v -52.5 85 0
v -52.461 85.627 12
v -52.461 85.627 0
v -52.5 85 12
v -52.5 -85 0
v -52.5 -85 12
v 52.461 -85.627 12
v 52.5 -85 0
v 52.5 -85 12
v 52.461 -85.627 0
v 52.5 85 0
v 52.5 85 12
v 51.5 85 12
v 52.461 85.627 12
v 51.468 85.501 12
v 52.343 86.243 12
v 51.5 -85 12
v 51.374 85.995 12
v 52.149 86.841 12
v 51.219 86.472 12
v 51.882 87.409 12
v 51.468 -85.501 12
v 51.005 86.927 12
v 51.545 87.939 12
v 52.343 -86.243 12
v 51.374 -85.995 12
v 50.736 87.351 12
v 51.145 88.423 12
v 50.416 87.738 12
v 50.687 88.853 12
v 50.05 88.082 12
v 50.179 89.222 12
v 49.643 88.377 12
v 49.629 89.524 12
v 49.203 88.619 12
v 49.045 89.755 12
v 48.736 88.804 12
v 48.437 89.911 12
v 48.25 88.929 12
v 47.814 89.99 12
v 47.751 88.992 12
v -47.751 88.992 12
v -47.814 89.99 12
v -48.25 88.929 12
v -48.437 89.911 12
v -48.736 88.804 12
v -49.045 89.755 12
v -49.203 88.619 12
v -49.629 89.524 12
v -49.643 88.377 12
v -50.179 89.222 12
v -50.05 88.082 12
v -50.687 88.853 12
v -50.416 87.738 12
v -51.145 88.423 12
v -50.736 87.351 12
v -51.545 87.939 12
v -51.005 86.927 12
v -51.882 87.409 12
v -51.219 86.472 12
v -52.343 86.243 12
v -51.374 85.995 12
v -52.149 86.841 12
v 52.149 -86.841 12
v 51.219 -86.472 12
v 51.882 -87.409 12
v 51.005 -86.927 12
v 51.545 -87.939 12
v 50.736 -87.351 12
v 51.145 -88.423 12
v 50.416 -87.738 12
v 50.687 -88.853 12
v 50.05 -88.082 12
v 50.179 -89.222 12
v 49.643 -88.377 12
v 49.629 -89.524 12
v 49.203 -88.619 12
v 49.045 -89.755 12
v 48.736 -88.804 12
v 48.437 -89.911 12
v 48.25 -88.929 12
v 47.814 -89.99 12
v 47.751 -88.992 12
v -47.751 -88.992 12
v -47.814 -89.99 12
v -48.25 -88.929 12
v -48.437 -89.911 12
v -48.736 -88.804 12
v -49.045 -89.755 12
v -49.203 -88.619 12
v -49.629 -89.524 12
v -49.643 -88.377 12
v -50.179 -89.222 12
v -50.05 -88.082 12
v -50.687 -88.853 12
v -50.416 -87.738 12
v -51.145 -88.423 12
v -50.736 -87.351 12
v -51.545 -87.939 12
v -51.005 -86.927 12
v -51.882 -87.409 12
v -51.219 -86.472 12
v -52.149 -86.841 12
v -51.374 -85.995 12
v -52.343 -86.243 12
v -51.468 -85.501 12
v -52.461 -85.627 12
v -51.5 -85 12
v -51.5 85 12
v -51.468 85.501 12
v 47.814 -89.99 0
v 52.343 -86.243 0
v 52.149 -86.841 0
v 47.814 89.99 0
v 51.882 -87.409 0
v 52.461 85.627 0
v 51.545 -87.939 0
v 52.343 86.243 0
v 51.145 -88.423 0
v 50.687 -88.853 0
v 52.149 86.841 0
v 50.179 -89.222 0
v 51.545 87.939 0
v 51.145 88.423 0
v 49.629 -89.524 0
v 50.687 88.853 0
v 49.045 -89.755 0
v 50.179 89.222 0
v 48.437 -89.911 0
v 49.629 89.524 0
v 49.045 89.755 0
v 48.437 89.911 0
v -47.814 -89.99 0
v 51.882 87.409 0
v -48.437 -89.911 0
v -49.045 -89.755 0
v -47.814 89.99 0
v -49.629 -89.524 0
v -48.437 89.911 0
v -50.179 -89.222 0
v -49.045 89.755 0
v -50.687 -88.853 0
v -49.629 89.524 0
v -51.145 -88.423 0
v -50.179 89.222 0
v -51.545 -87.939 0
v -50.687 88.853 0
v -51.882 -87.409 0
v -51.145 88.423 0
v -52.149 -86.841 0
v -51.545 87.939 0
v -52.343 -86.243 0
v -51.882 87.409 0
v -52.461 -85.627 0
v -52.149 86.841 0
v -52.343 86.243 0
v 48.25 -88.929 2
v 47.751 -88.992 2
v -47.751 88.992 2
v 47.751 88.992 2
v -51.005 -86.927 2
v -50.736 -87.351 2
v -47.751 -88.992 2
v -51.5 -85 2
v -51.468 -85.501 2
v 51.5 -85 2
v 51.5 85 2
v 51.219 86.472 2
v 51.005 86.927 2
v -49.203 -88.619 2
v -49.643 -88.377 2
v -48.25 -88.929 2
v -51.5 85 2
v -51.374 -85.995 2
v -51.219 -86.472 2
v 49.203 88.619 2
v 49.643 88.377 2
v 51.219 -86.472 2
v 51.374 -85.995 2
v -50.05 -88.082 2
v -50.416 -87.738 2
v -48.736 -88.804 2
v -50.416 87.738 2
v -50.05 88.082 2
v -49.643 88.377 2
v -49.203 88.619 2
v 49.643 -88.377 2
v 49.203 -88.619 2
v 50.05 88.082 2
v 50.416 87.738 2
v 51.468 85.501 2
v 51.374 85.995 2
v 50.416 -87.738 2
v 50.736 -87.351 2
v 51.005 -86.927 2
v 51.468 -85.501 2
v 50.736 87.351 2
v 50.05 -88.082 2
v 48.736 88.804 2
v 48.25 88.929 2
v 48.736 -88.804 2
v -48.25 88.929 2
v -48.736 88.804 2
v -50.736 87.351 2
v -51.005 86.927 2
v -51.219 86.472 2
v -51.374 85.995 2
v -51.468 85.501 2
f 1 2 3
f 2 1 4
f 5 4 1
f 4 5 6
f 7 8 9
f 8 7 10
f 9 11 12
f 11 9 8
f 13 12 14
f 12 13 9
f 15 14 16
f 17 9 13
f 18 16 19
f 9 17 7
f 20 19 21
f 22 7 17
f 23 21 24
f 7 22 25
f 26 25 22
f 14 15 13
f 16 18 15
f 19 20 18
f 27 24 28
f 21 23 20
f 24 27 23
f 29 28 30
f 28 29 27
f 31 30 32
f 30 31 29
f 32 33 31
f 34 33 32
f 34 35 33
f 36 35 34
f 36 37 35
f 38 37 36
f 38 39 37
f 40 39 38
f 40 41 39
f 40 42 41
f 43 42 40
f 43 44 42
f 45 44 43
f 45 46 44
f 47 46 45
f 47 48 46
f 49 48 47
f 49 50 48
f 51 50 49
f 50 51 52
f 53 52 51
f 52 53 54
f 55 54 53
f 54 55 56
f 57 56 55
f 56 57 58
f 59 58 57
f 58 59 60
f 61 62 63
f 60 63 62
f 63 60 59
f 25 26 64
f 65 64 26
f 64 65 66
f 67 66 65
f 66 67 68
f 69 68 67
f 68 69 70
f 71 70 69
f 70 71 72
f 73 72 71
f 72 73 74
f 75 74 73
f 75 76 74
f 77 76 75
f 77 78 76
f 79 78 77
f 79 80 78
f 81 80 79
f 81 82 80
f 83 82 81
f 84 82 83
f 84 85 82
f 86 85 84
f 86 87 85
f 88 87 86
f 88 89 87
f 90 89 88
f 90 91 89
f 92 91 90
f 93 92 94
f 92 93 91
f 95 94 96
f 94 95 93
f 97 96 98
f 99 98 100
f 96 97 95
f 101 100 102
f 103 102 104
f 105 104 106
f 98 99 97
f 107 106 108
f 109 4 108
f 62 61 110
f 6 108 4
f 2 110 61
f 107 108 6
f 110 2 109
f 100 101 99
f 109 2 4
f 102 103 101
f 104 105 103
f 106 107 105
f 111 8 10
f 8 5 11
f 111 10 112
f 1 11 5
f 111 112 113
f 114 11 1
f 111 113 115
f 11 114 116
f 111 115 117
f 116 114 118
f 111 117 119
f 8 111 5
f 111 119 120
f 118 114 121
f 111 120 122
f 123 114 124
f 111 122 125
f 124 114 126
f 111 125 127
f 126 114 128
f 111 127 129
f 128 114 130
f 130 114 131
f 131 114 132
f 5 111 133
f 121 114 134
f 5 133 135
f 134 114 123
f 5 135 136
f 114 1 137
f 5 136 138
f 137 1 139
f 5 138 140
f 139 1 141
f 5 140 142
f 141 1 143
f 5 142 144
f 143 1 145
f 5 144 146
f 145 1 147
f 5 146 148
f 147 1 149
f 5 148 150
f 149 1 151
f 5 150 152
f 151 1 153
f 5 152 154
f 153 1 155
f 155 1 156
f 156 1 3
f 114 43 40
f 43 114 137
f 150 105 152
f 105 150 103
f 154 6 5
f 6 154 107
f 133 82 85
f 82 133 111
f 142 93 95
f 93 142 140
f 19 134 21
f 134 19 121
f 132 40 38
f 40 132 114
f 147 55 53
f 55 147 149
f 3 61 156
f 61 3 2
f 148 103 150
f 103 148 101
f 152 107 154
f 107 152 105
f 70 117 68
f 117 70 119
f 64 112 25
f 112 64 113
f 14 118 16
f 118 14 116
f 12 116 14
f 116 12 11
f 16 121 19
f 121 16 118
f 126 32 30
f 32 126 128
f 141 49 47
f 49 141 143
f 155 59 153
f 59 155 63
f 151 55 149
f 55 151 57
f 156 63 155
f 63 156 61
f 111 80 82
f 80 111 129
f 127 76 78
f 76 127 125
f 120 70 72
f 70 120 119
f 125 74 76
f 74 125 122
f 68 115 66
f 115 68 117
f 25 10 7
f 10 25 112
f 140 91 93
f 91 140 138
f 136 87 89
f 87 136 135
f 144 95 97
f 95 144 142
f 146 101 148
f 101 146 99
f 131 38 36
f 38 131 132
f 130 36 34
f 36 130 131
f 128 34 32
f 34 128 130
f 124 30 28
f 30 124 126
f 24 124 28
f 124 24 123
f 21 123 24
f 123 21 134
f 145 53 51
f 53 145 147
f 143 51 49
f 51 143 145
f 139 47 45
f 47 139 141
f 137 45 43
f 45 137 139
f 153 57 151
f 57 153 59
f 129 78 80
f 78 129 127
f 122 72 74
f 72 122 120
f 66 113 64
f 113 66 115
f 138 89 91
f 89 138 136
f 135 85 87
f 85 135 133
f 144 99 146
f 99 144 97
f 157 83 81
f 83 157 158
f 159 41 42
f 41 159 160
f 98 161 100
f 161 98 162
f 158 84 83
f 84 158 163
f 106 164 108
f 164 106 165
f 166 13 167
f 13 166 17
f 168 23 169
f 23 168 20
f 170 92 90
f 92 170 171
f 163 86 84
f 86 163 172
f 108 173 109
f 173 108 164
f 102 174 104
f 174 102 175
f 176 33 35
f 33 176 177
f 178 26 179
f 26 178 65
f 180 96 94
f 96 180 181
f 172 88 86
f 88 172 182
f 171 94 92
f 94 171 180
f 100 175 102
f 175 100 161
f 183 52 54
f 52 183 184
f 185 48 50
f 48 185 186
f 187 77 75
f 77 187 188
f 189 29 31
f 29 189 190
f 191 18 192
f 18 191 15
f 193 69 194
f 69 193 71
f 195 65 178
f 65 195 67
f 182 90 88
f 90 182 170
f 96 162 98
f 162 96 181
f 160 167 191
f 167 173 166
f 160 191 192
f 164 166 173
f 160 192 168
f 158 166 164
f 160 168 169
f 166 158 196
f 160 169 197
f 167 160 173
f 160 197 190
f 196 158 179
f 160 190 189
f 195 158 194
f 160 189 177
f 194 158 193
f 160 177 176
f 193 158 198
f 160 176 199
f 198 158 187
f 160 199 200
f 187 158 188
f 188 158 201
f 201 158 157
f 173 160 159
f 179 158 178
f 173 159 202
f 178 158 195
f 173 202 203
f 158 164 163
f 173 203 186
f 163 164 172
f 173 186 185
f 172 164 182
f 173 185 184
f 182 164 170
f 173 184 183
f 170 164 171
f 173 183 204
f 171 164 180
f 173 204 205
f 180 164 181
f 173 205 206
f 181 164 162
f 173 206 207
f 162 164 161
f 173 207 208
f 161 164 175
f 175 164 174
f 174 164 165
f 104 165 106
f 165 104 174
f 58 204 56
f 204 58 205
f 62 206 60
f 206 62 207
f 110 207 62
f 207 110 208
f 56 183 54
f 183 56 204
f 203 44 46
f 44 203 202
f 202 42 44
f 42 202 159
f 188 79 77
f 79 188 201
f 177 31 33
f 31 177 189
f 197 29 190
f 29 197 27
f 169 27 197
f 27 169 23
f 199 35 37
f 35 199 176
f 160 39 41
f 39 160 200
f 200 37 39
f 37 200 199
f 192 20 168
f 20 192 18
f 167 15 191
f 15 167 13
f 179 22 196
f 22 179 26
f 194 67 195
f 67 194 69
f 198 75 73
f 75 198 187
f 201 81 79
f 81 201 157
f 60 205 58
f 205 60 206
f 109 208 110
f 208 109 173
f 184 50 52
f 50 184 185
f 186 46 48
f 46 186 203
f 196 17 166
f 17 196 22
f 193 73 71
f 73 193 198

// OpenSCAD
$fn = 50;


difference() {
	union() {
		hull() {
			translate(v = [-47.5000000000, 85.0000000000, 0]) {
				cylinder(h = 12, r = 5);
			}
			translate(v = [47.5000000000, 85.0000000000, 0]) {
				cylinder(h = 12, r = 5);
			}
			translate(v = [-47.5000000000, -85.0000000000, 0]) {
				cylinder(h = 12, r = 5);
			}
			translate(v = [47.5000000000, -85.0000000000, 0]) {
				cylinder(h = 12, r = 5);
			}
		}
	}
	union() {
		translate(v = [0, 0, 2]) {
			hull() {
				translate(v = [-47.5000000000, 85.0000000000, 0]) {
					cylinder(h = 10, r = 4);
				}
				translate(v = [47.5000000000, 85.0000000000, 0]) {
					cylinder(h = 10, r = 4);
				}
				translate(v = [-47.5000000000, -85.0000000000, 0]) {
					cylinder(h = 10, r = 4);
				}
				translate(v = [47.5000000000, -85.0000000000, 0]) {
					cylinder(h = 10, r = 4);
				}
			}
		}
	}
}
